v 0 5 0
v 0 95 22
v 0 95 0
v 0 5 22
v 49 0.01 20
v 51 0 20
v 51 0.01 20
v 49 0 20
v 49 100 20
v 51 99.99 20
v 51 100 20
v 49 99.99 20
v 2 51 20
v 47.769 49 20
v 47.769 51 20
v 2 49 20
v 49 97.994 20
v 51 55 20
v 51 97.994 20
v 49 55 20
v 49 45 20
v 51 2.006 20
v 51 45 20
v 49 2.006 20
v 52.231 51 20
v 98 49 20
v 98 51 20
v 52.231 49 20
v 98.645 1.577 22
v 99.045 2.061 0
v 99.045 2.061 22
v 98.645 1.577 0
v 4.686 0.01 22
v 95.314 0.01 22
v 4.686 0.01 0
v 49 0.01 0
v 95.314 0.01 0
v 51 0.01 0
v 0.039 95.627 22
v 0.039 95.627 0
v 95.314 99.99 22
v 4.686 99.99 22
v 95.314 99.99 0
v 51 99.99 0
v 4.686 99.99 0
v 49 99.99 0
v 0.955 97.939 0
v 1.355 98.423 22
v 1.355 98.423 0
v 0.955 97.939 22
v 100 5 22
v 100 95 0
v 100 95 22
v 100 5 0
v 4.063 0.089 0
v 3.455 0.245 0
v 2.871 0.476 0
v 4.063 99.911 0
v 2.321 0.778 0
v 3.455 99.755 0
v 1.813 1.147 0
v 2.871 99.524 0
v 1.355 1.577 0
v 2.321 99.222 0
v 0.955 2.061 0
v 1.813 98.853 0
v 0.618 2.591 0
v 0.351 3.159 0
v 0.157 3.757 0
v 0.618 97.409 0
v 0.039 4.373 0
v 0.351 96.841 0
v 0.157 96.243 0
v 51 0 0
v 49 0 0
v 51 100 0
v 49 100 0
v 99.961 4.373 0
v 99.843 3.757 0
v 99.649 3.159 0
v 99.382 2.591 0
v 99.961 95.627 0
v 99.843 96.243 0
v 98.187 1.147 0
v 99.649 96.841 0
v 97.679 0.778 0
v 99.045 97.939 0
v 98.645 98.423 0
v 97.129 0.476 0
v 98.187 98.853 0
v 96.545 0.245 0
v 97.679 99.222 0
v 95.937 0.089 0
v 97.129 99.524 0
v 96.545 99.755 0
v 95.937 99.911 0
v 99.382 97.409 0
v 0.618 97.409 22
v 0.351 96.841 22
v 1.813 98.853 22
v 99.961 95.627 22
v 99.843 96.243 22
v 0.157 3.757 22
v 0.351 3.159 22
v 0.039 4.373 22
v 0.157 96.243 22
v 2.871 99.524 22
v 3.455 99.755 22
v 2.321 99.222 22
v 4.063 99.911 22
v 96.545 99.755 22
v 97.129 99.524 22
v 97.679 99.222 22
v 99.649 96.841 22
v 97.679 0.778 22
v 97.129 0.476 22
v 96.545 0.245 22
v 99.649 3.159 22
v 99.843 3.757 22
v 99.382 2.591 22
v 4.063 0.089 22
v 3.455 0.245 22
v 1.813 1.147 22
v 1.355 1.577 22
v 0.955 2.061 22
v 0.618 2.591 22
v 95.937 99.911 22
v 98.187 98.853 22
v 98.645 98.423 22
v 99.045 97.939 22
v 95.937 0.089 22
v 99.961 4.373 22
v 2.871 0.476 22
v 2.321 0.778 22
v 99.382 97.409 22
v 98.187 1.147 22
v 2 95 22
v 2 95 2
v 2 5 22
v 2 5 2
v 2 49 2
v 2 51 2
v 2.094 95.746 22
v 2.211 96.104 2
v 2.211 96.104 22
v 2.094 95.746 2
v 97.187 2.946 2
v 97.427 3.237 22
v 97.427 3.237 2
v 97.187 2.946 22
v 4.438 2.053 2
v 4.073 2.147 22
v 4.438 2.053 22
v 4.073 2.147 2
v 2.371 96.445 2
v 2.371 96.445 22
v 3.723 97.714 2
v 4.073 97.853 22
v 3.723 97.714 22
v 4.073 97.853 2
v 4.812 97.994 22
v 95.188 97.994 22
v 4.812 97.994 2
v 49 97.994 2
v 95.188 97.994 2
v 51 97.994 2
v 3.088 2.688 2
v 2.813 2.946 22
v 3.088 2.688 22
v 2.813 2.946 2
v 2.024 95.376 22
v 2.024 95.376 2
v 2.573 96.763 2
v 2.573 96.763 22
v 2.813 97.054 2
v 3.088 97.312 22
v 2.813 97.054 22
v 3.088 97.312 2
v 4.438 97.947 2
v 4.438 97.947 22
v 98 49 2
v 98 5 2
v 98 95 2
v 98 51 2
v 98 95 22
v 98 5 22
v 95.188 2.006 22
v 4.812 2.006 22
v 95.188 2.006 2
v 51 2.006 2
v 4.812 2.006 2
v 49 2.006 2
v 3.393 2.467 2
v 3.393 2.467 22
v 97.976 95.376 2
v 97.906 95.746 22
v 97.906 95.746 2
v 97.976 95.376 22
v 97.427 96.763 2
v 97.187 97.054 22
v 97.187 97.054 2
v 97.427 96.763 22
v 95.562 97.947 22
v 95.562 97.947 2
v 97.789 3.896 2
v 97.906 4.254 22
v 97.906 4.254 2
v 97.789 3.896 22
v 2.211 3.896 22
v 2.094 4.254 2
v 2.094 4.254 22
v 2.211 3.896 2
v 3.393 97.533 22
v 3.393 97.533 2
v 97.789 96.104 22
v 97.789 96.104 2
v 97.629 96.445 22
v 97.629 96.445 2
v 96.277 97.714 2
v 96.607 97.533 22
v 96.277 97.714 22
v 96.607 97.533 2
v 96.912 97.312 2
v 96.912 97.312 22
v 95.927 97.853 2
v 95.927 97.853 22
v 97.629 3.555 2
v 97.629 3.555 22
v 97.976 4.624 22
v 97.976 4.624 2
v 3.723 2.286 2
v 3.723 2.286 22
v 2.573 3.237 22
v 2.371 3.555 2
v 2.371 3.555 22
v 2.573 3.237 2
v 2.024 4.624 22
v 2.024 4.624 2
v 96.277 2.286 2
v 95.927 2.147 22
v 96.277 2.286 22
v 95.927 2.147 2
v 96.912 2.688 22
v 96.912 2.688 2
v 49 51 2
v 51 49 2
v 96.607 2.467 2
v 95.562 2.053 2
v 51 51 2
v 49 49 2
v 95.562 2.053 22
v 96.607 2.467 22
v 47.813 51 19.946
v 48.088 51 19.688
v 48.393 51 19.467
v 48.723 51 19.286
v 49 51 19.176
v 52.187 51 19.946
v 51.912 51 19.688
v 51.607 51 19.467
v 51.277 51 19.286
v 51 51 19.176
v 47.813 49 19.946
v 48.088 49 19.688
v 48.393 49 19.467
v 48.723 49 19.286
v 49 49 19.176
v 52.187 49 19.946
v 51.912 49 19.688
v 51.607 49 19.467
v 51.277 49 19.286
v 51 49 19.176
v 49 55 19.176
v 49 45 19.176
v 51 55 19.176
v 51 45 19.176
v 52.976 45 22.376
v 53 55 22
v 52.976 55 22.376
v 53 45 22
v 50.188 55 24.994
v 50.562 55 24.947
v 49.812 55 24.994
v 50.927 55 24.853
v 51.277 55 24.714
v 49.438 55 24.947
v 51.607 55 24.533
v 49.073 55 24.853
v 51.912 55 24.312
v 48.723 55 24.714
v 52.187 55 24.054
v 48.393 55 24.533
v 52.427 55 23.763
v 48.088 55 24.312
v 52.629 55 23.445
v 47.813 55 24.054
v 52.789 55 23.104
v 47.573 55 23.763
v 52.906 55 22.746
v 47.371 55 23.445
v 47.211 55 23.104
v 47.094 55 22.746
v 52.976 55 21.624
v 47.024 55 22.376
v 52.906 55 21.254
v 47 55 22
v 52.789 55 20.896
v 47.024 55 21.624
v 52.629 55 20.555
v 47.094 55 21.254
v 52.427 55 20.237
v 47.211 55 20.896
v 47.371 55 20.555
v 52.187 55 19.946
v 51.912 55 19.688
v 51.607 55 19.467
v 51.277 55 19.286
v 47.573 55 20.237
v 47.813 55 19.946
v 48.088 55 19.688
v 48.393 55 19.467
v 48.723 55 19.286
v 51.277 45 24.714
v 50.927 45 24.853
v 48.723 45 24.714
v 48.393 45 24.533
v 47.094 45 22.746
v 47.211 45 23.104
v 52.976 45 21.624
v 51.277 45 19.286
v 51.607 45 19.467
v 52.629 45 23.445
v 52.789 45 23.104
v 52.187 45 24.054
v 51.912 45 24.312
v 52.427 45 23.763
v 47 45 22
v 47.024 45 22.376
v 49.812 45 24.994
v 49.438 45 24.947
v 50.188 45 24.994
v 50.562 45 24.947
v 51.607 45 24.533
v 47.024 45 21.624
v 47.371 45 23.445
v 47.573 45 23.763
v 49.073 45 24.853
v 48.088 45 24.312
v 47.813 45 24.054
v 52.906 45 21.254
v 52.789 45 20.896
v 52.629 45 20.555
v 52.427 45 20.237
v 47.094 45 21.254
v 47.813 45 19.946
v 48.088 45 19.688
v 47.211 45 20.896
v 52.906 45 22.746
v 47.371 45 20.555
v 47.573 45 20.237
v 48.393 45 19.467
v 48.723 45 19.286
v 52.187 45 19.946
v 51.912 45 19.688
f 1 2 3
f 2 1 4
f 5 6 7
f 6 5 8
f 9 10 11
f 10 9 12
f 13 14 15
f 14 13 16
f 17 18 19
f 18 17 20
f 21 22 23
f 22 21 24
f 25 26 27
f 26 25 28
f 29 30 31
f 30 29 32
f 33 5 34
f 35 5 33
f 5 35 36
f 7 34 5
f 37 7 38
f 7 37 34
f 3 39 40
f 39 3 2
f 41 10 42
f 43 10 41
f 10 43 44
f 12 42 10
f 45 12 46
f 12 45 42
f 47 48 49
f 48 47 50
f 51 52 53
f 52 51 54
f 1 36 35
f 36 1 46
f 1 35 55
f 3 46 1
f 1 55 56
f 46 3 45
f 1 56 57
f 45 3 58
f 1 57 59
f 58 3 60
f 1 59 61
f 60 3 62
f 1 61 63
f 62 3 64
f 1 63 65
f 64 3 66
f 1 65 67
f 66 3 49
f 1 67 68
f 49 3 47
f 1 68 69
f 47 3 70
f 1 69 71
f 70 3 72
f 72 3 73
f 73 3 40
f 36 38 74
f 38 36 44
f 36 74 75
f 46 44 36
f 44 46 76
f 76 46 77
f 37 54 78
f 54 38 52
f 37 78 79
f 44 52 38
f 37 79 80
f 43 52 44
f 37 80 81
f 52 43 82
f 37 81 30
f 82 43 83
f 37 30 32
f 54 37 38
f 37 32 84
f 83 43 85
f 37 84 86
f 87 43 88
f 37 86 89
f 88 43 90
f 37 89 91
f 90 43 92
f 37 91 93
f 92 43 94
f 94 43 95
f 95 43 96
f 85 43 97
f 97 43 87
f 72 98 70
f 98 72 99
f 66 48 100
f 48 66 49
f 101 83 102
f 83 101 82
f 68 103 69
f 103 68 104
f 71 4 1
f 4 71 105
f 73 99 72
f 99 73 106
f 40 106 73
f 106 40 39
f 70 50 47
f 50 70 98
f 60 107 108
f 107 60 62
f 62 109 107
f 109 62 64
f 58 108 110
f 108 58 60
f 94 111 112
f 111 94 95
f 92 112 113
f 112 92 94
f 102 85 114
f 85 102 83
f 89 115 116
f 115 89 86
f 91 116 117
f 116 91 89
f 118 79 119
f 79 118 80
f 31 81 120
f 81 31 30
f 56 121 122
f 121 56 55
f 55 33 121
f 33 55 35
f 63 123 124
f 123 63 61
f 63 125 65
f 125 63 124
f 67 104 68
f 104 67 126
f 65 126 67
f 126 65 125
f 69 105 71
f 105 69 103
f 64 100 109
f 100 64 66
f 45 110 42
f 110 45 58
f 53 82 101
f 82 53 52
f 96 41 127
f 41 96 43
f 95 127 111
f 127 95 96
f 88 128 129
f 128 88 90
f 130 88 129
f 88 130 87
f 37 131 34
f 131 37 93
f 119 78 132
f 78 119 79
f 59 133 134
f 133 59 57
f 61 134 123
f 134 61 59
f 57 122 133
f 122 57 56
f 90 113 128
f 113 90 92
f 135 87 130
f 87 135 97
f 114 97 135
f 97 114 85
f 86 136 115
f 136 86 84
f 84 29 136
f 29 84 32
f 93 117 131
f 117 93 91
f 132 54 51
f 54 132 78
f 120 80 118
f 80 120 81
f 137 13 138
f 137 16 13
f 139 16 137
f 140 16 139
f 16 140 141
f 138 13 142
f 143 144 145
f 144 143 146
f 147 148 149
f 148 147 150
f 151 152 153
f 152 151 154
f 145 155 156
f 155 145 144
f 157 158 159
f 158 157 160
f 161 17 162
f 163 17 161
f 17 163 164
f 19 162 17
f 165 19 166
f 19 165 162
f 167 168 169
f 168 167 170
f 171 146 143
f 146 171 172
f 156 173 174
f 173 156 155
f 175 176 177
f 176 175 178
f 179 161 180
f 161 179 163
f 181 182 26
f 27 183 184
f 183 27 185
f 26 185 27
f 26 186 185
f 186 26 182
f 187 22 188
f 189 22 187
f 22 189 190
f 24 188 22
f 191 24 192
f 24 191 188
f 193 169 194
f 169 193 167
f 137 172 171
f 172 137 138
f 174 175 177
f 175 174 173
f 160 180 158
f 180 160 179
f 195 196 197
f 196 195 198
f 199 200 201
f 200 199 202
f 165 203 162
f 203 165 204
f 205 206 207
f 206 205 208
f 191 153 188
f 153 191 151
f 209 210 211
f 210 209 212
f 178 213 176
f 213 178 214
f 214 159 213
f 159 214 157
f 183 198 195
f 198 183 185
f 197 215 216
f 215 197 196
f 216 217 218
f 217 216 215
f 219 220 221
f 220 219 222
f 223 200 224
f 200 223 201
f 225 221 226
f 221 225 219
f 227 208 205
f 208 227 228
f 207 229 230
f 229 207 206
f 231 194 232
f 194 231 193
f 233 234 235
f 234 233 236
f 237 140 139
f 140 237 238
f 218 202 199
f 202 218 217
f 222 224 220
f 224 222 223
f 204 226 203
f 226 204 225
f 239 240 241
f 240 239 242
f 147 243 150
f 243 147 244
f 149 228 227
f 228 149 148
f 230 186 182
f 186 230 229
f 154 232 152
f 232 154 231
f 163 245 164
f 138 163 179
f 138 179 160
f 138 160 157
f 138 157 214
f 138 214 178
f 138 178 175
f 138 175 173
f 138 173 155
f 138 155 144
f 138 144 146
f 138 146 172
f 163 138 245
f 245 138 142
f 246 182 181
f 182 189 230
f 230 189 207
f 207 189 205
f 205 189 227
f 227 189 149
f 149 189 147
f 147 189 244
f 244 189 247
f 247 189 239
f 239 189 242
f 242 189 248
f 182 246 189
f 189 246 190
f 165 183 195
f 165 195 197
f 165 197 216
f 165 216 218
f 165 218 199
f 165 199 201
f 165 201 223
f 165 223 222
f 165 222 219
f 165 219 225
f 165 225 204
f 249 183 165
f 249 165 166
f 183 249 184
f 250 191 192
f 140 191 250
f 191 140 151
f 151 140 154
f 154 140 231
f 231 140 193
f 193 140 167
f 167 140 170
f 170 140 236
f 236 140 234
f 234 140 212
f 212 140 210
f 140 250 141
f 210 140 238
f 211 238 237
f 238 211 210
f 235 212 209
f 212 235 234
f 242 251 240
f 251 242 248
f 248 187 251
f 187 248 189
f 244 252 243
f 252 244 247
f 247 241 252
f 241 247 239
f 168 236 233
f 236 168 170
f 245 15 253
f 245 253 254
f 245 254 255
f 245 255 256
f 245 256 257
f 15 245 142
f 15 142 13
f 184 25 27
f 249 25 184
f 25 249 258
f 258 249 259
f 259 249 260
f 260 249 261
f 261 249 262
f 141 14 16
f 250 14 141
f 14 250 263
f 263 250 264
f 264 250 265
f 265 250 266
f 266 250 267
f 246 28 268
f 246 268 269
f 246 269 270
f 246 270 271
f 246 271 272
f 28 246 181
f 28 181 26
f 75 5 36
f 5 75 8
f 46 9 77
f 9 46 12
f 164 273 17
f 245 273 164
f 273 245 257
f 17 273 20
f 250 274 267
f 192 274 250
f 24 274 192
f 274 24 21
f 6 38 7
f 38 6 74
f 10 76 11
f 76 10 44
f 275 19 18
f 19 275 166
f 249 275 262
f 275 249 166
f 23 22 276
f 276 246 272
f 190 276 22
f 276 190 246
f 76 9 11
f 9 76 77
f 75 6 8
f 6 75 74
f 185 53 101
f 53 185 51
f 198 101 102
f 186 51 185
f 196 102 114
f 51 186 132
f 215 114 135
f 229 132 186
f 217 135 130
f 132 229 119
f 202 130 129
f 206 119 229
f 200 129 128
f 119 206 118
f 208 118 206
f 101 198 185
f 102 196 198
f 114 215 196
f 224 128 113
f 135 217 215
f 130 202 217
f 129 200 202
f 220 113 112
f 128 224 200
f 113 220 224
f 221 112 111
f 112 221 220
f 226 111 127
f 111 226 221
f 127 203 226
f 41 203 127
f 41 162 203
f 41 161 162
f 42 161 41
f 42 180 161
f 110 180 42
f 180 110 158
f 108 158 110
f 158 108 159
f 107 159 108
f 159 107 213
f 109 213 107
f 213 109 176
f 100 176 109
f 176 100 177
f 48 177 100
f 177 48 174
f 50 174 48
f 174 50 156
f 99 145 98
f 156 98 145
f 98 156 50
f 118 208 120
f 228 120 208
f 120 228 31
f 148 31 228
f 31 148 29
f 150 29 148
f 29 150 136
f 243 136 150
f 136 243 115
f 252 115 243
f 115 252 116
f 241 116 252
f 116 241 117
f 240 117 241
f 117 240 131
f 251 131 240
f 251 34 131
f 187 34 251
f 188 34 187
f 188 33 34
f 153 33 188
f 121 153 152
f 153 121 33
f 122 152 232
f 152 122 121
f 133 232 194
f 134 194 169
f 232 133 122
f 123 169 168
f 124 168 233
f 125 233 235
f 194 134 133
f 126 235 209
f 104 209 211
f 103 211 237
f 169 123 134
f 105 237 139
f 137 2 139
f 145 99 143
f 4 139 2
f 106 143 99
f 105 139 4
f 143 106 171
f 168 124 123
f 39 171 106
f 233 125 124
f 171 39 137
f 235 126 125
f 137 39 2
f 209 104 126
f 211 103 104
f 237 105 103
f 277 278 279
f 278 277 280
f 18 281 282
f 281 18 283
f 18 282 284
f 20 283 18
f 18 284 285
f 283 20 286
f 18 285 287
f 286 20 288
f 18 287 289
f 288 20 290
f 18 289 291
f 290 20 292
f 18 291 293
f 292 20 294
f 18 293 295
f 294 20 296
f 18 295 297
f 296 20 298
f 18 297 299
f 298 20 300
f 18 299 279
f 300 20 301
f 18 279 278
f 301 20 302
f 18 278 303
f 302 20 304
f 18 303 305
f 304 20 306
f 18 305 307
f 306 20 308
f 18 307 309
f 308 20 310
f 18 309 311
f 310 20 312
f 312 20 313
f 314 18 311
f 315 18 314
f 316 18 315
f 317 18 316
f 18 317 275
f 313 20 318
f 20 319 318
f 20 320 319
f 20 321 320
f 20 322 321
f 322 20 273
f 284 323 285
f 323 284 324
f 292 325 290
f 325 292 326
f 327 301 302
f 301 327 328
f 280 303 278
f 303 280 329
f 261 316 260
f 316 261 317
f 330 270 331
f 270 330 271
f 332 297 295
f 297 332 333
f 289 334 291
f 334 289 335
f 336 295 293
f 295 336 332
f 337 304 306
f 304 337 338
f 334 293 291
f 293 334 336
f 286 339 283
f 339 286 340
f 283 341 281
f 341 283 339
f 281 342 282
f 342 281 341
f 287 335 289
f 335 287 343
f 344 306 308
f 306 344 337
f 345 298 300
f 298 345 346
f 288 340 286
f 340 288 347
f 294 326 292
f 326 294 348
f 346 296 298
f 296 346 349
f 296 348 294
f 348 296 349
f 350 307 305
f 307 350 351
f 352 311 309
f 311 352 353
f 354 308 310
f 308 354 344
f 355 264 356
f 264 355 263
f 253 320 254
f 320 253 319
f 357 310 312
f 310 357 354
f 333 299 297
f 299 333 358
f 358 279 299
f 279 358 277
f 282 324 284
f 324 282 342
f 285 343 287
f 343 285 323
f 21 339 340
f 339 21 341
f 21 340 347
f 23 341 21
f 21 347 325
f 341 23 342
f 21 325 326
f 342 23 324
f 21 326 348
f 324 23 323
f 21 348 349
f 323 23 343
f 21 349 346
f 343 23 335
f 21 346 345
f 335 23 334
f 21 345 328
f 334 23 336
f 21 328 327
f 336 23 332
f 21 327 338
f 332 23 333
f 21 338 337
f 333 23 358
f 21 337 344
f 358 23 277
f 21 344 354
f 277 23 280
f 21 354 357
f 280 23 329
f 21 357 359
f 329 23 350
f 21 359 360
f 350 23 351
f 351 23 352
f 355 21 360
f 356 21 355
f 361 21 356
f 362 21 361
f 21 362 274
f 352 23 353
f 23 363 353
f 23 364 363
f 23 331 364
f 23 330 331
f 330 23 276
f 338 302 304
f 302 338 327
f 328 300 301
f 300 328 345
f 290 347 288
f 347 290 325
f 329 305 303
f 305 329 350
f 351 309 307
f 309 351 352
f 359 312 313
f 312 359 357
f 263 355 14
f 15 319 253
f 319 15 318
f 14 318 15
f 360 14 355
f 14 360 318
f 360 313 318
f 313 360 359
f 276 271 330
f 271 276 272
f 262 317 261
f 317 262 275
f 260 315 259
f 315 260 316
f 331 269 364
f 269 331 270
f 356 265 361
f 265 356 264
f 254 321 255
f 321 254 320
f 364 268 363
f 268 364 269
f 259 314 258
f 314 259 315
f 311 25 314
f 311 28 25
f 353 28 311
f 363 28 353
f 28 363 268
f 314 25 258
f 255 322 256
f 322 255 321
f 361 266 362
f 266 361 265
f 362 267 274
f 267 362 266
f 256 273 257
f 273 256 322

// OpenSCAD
// 盒子的尺寸
box_length = 100;  // 盒子长度
box_width = 100;   // 盒子宽度
box_height = 20;   // 盒子高度
wall_thickness = 2; // 盒子壁厚
corner_radius = 5;  // 盒子圆角半径

// 隔板的厚度
divider_thickness = 2; // 隔板厚度

// 老婆饼的尺寸
pastry_radius = 15; // 老婆饼半径
pastry_height = 8;  // 老婆饼高度

// 创建带圆角的盒子
module create_rounded_box(length, width, height, radius) {
    // 底部
    hull() {
        translate([radius, radius, 0]) {
            cylinder(h=height, r=radius, $fn=50);
        }
        translate([length - radius, radius, 0]) {
            cylinder(h=height, r=radius, $fn=50);
        }
        translate([radius, width - radius, 0]) {
            cylinder(h=height, r=radius, $fn=50);
        }
        translate([length - radius, width - radius, 0]) {
            cylinder(h=height, r=radius, $fn=50);
        }
    }
}

// 创建盒子
module create_box() {
    difference() {
        // 外盒
        create_rounded_box(box_length, box_width, box_height, corner_radius);
        // 内盒挖空
        translate([wall_thickness, wall_thickness, wall_thickness]) {
            create_rounded_box(box_length - 2*wall_thickness, box_width - 2*wall_thickness, box_height, corner_radius - wall_thickness);
        }
    }
}

// 创建隔板（十字形）
module create_dividers() {
    // 横向隔板
    translate([0, box_width/2 - divider_thickness/2, 0]) {
        cube([box_length, divider_thickness, box_height]);
    }
    // 纵向隔板
    translate([box_length/2 - divider_thickness/2, 0, 0]) {
        cube([divider_thickness, box_width, box_height]);
    }
}

// 创建盖子
module create_lid() {
    translate([0, 0, box_height]) {
        difference() {
            // 盖子外盒
            create_rounded_box(box_length, box_width, wall_thickness, corner_radius);
            // 盖子内盒挖空
            translate([wall_thickness, wall_thickness, -0.1]) {
                create_rounded_box(box_length - 2*wall_thickness, box_width - 2*wall_thickness, wall_thickness + 0.2, corner_radius - wall_thickness);
            }
        }
    }
}

// 创建把手
module create_handle() {
    translate([box_length / 2, box_width / 2, box_height + wall_thickness]) {
        rotate([90, 0, 0]) {
            cylinder(h=10, r=3, $fn=50, center=true);
        }
    }
}

// 组合盒子、隔板、老婆饼、盖子和把手
create_box();
create_dividers();
create_lid();
create_handle();
